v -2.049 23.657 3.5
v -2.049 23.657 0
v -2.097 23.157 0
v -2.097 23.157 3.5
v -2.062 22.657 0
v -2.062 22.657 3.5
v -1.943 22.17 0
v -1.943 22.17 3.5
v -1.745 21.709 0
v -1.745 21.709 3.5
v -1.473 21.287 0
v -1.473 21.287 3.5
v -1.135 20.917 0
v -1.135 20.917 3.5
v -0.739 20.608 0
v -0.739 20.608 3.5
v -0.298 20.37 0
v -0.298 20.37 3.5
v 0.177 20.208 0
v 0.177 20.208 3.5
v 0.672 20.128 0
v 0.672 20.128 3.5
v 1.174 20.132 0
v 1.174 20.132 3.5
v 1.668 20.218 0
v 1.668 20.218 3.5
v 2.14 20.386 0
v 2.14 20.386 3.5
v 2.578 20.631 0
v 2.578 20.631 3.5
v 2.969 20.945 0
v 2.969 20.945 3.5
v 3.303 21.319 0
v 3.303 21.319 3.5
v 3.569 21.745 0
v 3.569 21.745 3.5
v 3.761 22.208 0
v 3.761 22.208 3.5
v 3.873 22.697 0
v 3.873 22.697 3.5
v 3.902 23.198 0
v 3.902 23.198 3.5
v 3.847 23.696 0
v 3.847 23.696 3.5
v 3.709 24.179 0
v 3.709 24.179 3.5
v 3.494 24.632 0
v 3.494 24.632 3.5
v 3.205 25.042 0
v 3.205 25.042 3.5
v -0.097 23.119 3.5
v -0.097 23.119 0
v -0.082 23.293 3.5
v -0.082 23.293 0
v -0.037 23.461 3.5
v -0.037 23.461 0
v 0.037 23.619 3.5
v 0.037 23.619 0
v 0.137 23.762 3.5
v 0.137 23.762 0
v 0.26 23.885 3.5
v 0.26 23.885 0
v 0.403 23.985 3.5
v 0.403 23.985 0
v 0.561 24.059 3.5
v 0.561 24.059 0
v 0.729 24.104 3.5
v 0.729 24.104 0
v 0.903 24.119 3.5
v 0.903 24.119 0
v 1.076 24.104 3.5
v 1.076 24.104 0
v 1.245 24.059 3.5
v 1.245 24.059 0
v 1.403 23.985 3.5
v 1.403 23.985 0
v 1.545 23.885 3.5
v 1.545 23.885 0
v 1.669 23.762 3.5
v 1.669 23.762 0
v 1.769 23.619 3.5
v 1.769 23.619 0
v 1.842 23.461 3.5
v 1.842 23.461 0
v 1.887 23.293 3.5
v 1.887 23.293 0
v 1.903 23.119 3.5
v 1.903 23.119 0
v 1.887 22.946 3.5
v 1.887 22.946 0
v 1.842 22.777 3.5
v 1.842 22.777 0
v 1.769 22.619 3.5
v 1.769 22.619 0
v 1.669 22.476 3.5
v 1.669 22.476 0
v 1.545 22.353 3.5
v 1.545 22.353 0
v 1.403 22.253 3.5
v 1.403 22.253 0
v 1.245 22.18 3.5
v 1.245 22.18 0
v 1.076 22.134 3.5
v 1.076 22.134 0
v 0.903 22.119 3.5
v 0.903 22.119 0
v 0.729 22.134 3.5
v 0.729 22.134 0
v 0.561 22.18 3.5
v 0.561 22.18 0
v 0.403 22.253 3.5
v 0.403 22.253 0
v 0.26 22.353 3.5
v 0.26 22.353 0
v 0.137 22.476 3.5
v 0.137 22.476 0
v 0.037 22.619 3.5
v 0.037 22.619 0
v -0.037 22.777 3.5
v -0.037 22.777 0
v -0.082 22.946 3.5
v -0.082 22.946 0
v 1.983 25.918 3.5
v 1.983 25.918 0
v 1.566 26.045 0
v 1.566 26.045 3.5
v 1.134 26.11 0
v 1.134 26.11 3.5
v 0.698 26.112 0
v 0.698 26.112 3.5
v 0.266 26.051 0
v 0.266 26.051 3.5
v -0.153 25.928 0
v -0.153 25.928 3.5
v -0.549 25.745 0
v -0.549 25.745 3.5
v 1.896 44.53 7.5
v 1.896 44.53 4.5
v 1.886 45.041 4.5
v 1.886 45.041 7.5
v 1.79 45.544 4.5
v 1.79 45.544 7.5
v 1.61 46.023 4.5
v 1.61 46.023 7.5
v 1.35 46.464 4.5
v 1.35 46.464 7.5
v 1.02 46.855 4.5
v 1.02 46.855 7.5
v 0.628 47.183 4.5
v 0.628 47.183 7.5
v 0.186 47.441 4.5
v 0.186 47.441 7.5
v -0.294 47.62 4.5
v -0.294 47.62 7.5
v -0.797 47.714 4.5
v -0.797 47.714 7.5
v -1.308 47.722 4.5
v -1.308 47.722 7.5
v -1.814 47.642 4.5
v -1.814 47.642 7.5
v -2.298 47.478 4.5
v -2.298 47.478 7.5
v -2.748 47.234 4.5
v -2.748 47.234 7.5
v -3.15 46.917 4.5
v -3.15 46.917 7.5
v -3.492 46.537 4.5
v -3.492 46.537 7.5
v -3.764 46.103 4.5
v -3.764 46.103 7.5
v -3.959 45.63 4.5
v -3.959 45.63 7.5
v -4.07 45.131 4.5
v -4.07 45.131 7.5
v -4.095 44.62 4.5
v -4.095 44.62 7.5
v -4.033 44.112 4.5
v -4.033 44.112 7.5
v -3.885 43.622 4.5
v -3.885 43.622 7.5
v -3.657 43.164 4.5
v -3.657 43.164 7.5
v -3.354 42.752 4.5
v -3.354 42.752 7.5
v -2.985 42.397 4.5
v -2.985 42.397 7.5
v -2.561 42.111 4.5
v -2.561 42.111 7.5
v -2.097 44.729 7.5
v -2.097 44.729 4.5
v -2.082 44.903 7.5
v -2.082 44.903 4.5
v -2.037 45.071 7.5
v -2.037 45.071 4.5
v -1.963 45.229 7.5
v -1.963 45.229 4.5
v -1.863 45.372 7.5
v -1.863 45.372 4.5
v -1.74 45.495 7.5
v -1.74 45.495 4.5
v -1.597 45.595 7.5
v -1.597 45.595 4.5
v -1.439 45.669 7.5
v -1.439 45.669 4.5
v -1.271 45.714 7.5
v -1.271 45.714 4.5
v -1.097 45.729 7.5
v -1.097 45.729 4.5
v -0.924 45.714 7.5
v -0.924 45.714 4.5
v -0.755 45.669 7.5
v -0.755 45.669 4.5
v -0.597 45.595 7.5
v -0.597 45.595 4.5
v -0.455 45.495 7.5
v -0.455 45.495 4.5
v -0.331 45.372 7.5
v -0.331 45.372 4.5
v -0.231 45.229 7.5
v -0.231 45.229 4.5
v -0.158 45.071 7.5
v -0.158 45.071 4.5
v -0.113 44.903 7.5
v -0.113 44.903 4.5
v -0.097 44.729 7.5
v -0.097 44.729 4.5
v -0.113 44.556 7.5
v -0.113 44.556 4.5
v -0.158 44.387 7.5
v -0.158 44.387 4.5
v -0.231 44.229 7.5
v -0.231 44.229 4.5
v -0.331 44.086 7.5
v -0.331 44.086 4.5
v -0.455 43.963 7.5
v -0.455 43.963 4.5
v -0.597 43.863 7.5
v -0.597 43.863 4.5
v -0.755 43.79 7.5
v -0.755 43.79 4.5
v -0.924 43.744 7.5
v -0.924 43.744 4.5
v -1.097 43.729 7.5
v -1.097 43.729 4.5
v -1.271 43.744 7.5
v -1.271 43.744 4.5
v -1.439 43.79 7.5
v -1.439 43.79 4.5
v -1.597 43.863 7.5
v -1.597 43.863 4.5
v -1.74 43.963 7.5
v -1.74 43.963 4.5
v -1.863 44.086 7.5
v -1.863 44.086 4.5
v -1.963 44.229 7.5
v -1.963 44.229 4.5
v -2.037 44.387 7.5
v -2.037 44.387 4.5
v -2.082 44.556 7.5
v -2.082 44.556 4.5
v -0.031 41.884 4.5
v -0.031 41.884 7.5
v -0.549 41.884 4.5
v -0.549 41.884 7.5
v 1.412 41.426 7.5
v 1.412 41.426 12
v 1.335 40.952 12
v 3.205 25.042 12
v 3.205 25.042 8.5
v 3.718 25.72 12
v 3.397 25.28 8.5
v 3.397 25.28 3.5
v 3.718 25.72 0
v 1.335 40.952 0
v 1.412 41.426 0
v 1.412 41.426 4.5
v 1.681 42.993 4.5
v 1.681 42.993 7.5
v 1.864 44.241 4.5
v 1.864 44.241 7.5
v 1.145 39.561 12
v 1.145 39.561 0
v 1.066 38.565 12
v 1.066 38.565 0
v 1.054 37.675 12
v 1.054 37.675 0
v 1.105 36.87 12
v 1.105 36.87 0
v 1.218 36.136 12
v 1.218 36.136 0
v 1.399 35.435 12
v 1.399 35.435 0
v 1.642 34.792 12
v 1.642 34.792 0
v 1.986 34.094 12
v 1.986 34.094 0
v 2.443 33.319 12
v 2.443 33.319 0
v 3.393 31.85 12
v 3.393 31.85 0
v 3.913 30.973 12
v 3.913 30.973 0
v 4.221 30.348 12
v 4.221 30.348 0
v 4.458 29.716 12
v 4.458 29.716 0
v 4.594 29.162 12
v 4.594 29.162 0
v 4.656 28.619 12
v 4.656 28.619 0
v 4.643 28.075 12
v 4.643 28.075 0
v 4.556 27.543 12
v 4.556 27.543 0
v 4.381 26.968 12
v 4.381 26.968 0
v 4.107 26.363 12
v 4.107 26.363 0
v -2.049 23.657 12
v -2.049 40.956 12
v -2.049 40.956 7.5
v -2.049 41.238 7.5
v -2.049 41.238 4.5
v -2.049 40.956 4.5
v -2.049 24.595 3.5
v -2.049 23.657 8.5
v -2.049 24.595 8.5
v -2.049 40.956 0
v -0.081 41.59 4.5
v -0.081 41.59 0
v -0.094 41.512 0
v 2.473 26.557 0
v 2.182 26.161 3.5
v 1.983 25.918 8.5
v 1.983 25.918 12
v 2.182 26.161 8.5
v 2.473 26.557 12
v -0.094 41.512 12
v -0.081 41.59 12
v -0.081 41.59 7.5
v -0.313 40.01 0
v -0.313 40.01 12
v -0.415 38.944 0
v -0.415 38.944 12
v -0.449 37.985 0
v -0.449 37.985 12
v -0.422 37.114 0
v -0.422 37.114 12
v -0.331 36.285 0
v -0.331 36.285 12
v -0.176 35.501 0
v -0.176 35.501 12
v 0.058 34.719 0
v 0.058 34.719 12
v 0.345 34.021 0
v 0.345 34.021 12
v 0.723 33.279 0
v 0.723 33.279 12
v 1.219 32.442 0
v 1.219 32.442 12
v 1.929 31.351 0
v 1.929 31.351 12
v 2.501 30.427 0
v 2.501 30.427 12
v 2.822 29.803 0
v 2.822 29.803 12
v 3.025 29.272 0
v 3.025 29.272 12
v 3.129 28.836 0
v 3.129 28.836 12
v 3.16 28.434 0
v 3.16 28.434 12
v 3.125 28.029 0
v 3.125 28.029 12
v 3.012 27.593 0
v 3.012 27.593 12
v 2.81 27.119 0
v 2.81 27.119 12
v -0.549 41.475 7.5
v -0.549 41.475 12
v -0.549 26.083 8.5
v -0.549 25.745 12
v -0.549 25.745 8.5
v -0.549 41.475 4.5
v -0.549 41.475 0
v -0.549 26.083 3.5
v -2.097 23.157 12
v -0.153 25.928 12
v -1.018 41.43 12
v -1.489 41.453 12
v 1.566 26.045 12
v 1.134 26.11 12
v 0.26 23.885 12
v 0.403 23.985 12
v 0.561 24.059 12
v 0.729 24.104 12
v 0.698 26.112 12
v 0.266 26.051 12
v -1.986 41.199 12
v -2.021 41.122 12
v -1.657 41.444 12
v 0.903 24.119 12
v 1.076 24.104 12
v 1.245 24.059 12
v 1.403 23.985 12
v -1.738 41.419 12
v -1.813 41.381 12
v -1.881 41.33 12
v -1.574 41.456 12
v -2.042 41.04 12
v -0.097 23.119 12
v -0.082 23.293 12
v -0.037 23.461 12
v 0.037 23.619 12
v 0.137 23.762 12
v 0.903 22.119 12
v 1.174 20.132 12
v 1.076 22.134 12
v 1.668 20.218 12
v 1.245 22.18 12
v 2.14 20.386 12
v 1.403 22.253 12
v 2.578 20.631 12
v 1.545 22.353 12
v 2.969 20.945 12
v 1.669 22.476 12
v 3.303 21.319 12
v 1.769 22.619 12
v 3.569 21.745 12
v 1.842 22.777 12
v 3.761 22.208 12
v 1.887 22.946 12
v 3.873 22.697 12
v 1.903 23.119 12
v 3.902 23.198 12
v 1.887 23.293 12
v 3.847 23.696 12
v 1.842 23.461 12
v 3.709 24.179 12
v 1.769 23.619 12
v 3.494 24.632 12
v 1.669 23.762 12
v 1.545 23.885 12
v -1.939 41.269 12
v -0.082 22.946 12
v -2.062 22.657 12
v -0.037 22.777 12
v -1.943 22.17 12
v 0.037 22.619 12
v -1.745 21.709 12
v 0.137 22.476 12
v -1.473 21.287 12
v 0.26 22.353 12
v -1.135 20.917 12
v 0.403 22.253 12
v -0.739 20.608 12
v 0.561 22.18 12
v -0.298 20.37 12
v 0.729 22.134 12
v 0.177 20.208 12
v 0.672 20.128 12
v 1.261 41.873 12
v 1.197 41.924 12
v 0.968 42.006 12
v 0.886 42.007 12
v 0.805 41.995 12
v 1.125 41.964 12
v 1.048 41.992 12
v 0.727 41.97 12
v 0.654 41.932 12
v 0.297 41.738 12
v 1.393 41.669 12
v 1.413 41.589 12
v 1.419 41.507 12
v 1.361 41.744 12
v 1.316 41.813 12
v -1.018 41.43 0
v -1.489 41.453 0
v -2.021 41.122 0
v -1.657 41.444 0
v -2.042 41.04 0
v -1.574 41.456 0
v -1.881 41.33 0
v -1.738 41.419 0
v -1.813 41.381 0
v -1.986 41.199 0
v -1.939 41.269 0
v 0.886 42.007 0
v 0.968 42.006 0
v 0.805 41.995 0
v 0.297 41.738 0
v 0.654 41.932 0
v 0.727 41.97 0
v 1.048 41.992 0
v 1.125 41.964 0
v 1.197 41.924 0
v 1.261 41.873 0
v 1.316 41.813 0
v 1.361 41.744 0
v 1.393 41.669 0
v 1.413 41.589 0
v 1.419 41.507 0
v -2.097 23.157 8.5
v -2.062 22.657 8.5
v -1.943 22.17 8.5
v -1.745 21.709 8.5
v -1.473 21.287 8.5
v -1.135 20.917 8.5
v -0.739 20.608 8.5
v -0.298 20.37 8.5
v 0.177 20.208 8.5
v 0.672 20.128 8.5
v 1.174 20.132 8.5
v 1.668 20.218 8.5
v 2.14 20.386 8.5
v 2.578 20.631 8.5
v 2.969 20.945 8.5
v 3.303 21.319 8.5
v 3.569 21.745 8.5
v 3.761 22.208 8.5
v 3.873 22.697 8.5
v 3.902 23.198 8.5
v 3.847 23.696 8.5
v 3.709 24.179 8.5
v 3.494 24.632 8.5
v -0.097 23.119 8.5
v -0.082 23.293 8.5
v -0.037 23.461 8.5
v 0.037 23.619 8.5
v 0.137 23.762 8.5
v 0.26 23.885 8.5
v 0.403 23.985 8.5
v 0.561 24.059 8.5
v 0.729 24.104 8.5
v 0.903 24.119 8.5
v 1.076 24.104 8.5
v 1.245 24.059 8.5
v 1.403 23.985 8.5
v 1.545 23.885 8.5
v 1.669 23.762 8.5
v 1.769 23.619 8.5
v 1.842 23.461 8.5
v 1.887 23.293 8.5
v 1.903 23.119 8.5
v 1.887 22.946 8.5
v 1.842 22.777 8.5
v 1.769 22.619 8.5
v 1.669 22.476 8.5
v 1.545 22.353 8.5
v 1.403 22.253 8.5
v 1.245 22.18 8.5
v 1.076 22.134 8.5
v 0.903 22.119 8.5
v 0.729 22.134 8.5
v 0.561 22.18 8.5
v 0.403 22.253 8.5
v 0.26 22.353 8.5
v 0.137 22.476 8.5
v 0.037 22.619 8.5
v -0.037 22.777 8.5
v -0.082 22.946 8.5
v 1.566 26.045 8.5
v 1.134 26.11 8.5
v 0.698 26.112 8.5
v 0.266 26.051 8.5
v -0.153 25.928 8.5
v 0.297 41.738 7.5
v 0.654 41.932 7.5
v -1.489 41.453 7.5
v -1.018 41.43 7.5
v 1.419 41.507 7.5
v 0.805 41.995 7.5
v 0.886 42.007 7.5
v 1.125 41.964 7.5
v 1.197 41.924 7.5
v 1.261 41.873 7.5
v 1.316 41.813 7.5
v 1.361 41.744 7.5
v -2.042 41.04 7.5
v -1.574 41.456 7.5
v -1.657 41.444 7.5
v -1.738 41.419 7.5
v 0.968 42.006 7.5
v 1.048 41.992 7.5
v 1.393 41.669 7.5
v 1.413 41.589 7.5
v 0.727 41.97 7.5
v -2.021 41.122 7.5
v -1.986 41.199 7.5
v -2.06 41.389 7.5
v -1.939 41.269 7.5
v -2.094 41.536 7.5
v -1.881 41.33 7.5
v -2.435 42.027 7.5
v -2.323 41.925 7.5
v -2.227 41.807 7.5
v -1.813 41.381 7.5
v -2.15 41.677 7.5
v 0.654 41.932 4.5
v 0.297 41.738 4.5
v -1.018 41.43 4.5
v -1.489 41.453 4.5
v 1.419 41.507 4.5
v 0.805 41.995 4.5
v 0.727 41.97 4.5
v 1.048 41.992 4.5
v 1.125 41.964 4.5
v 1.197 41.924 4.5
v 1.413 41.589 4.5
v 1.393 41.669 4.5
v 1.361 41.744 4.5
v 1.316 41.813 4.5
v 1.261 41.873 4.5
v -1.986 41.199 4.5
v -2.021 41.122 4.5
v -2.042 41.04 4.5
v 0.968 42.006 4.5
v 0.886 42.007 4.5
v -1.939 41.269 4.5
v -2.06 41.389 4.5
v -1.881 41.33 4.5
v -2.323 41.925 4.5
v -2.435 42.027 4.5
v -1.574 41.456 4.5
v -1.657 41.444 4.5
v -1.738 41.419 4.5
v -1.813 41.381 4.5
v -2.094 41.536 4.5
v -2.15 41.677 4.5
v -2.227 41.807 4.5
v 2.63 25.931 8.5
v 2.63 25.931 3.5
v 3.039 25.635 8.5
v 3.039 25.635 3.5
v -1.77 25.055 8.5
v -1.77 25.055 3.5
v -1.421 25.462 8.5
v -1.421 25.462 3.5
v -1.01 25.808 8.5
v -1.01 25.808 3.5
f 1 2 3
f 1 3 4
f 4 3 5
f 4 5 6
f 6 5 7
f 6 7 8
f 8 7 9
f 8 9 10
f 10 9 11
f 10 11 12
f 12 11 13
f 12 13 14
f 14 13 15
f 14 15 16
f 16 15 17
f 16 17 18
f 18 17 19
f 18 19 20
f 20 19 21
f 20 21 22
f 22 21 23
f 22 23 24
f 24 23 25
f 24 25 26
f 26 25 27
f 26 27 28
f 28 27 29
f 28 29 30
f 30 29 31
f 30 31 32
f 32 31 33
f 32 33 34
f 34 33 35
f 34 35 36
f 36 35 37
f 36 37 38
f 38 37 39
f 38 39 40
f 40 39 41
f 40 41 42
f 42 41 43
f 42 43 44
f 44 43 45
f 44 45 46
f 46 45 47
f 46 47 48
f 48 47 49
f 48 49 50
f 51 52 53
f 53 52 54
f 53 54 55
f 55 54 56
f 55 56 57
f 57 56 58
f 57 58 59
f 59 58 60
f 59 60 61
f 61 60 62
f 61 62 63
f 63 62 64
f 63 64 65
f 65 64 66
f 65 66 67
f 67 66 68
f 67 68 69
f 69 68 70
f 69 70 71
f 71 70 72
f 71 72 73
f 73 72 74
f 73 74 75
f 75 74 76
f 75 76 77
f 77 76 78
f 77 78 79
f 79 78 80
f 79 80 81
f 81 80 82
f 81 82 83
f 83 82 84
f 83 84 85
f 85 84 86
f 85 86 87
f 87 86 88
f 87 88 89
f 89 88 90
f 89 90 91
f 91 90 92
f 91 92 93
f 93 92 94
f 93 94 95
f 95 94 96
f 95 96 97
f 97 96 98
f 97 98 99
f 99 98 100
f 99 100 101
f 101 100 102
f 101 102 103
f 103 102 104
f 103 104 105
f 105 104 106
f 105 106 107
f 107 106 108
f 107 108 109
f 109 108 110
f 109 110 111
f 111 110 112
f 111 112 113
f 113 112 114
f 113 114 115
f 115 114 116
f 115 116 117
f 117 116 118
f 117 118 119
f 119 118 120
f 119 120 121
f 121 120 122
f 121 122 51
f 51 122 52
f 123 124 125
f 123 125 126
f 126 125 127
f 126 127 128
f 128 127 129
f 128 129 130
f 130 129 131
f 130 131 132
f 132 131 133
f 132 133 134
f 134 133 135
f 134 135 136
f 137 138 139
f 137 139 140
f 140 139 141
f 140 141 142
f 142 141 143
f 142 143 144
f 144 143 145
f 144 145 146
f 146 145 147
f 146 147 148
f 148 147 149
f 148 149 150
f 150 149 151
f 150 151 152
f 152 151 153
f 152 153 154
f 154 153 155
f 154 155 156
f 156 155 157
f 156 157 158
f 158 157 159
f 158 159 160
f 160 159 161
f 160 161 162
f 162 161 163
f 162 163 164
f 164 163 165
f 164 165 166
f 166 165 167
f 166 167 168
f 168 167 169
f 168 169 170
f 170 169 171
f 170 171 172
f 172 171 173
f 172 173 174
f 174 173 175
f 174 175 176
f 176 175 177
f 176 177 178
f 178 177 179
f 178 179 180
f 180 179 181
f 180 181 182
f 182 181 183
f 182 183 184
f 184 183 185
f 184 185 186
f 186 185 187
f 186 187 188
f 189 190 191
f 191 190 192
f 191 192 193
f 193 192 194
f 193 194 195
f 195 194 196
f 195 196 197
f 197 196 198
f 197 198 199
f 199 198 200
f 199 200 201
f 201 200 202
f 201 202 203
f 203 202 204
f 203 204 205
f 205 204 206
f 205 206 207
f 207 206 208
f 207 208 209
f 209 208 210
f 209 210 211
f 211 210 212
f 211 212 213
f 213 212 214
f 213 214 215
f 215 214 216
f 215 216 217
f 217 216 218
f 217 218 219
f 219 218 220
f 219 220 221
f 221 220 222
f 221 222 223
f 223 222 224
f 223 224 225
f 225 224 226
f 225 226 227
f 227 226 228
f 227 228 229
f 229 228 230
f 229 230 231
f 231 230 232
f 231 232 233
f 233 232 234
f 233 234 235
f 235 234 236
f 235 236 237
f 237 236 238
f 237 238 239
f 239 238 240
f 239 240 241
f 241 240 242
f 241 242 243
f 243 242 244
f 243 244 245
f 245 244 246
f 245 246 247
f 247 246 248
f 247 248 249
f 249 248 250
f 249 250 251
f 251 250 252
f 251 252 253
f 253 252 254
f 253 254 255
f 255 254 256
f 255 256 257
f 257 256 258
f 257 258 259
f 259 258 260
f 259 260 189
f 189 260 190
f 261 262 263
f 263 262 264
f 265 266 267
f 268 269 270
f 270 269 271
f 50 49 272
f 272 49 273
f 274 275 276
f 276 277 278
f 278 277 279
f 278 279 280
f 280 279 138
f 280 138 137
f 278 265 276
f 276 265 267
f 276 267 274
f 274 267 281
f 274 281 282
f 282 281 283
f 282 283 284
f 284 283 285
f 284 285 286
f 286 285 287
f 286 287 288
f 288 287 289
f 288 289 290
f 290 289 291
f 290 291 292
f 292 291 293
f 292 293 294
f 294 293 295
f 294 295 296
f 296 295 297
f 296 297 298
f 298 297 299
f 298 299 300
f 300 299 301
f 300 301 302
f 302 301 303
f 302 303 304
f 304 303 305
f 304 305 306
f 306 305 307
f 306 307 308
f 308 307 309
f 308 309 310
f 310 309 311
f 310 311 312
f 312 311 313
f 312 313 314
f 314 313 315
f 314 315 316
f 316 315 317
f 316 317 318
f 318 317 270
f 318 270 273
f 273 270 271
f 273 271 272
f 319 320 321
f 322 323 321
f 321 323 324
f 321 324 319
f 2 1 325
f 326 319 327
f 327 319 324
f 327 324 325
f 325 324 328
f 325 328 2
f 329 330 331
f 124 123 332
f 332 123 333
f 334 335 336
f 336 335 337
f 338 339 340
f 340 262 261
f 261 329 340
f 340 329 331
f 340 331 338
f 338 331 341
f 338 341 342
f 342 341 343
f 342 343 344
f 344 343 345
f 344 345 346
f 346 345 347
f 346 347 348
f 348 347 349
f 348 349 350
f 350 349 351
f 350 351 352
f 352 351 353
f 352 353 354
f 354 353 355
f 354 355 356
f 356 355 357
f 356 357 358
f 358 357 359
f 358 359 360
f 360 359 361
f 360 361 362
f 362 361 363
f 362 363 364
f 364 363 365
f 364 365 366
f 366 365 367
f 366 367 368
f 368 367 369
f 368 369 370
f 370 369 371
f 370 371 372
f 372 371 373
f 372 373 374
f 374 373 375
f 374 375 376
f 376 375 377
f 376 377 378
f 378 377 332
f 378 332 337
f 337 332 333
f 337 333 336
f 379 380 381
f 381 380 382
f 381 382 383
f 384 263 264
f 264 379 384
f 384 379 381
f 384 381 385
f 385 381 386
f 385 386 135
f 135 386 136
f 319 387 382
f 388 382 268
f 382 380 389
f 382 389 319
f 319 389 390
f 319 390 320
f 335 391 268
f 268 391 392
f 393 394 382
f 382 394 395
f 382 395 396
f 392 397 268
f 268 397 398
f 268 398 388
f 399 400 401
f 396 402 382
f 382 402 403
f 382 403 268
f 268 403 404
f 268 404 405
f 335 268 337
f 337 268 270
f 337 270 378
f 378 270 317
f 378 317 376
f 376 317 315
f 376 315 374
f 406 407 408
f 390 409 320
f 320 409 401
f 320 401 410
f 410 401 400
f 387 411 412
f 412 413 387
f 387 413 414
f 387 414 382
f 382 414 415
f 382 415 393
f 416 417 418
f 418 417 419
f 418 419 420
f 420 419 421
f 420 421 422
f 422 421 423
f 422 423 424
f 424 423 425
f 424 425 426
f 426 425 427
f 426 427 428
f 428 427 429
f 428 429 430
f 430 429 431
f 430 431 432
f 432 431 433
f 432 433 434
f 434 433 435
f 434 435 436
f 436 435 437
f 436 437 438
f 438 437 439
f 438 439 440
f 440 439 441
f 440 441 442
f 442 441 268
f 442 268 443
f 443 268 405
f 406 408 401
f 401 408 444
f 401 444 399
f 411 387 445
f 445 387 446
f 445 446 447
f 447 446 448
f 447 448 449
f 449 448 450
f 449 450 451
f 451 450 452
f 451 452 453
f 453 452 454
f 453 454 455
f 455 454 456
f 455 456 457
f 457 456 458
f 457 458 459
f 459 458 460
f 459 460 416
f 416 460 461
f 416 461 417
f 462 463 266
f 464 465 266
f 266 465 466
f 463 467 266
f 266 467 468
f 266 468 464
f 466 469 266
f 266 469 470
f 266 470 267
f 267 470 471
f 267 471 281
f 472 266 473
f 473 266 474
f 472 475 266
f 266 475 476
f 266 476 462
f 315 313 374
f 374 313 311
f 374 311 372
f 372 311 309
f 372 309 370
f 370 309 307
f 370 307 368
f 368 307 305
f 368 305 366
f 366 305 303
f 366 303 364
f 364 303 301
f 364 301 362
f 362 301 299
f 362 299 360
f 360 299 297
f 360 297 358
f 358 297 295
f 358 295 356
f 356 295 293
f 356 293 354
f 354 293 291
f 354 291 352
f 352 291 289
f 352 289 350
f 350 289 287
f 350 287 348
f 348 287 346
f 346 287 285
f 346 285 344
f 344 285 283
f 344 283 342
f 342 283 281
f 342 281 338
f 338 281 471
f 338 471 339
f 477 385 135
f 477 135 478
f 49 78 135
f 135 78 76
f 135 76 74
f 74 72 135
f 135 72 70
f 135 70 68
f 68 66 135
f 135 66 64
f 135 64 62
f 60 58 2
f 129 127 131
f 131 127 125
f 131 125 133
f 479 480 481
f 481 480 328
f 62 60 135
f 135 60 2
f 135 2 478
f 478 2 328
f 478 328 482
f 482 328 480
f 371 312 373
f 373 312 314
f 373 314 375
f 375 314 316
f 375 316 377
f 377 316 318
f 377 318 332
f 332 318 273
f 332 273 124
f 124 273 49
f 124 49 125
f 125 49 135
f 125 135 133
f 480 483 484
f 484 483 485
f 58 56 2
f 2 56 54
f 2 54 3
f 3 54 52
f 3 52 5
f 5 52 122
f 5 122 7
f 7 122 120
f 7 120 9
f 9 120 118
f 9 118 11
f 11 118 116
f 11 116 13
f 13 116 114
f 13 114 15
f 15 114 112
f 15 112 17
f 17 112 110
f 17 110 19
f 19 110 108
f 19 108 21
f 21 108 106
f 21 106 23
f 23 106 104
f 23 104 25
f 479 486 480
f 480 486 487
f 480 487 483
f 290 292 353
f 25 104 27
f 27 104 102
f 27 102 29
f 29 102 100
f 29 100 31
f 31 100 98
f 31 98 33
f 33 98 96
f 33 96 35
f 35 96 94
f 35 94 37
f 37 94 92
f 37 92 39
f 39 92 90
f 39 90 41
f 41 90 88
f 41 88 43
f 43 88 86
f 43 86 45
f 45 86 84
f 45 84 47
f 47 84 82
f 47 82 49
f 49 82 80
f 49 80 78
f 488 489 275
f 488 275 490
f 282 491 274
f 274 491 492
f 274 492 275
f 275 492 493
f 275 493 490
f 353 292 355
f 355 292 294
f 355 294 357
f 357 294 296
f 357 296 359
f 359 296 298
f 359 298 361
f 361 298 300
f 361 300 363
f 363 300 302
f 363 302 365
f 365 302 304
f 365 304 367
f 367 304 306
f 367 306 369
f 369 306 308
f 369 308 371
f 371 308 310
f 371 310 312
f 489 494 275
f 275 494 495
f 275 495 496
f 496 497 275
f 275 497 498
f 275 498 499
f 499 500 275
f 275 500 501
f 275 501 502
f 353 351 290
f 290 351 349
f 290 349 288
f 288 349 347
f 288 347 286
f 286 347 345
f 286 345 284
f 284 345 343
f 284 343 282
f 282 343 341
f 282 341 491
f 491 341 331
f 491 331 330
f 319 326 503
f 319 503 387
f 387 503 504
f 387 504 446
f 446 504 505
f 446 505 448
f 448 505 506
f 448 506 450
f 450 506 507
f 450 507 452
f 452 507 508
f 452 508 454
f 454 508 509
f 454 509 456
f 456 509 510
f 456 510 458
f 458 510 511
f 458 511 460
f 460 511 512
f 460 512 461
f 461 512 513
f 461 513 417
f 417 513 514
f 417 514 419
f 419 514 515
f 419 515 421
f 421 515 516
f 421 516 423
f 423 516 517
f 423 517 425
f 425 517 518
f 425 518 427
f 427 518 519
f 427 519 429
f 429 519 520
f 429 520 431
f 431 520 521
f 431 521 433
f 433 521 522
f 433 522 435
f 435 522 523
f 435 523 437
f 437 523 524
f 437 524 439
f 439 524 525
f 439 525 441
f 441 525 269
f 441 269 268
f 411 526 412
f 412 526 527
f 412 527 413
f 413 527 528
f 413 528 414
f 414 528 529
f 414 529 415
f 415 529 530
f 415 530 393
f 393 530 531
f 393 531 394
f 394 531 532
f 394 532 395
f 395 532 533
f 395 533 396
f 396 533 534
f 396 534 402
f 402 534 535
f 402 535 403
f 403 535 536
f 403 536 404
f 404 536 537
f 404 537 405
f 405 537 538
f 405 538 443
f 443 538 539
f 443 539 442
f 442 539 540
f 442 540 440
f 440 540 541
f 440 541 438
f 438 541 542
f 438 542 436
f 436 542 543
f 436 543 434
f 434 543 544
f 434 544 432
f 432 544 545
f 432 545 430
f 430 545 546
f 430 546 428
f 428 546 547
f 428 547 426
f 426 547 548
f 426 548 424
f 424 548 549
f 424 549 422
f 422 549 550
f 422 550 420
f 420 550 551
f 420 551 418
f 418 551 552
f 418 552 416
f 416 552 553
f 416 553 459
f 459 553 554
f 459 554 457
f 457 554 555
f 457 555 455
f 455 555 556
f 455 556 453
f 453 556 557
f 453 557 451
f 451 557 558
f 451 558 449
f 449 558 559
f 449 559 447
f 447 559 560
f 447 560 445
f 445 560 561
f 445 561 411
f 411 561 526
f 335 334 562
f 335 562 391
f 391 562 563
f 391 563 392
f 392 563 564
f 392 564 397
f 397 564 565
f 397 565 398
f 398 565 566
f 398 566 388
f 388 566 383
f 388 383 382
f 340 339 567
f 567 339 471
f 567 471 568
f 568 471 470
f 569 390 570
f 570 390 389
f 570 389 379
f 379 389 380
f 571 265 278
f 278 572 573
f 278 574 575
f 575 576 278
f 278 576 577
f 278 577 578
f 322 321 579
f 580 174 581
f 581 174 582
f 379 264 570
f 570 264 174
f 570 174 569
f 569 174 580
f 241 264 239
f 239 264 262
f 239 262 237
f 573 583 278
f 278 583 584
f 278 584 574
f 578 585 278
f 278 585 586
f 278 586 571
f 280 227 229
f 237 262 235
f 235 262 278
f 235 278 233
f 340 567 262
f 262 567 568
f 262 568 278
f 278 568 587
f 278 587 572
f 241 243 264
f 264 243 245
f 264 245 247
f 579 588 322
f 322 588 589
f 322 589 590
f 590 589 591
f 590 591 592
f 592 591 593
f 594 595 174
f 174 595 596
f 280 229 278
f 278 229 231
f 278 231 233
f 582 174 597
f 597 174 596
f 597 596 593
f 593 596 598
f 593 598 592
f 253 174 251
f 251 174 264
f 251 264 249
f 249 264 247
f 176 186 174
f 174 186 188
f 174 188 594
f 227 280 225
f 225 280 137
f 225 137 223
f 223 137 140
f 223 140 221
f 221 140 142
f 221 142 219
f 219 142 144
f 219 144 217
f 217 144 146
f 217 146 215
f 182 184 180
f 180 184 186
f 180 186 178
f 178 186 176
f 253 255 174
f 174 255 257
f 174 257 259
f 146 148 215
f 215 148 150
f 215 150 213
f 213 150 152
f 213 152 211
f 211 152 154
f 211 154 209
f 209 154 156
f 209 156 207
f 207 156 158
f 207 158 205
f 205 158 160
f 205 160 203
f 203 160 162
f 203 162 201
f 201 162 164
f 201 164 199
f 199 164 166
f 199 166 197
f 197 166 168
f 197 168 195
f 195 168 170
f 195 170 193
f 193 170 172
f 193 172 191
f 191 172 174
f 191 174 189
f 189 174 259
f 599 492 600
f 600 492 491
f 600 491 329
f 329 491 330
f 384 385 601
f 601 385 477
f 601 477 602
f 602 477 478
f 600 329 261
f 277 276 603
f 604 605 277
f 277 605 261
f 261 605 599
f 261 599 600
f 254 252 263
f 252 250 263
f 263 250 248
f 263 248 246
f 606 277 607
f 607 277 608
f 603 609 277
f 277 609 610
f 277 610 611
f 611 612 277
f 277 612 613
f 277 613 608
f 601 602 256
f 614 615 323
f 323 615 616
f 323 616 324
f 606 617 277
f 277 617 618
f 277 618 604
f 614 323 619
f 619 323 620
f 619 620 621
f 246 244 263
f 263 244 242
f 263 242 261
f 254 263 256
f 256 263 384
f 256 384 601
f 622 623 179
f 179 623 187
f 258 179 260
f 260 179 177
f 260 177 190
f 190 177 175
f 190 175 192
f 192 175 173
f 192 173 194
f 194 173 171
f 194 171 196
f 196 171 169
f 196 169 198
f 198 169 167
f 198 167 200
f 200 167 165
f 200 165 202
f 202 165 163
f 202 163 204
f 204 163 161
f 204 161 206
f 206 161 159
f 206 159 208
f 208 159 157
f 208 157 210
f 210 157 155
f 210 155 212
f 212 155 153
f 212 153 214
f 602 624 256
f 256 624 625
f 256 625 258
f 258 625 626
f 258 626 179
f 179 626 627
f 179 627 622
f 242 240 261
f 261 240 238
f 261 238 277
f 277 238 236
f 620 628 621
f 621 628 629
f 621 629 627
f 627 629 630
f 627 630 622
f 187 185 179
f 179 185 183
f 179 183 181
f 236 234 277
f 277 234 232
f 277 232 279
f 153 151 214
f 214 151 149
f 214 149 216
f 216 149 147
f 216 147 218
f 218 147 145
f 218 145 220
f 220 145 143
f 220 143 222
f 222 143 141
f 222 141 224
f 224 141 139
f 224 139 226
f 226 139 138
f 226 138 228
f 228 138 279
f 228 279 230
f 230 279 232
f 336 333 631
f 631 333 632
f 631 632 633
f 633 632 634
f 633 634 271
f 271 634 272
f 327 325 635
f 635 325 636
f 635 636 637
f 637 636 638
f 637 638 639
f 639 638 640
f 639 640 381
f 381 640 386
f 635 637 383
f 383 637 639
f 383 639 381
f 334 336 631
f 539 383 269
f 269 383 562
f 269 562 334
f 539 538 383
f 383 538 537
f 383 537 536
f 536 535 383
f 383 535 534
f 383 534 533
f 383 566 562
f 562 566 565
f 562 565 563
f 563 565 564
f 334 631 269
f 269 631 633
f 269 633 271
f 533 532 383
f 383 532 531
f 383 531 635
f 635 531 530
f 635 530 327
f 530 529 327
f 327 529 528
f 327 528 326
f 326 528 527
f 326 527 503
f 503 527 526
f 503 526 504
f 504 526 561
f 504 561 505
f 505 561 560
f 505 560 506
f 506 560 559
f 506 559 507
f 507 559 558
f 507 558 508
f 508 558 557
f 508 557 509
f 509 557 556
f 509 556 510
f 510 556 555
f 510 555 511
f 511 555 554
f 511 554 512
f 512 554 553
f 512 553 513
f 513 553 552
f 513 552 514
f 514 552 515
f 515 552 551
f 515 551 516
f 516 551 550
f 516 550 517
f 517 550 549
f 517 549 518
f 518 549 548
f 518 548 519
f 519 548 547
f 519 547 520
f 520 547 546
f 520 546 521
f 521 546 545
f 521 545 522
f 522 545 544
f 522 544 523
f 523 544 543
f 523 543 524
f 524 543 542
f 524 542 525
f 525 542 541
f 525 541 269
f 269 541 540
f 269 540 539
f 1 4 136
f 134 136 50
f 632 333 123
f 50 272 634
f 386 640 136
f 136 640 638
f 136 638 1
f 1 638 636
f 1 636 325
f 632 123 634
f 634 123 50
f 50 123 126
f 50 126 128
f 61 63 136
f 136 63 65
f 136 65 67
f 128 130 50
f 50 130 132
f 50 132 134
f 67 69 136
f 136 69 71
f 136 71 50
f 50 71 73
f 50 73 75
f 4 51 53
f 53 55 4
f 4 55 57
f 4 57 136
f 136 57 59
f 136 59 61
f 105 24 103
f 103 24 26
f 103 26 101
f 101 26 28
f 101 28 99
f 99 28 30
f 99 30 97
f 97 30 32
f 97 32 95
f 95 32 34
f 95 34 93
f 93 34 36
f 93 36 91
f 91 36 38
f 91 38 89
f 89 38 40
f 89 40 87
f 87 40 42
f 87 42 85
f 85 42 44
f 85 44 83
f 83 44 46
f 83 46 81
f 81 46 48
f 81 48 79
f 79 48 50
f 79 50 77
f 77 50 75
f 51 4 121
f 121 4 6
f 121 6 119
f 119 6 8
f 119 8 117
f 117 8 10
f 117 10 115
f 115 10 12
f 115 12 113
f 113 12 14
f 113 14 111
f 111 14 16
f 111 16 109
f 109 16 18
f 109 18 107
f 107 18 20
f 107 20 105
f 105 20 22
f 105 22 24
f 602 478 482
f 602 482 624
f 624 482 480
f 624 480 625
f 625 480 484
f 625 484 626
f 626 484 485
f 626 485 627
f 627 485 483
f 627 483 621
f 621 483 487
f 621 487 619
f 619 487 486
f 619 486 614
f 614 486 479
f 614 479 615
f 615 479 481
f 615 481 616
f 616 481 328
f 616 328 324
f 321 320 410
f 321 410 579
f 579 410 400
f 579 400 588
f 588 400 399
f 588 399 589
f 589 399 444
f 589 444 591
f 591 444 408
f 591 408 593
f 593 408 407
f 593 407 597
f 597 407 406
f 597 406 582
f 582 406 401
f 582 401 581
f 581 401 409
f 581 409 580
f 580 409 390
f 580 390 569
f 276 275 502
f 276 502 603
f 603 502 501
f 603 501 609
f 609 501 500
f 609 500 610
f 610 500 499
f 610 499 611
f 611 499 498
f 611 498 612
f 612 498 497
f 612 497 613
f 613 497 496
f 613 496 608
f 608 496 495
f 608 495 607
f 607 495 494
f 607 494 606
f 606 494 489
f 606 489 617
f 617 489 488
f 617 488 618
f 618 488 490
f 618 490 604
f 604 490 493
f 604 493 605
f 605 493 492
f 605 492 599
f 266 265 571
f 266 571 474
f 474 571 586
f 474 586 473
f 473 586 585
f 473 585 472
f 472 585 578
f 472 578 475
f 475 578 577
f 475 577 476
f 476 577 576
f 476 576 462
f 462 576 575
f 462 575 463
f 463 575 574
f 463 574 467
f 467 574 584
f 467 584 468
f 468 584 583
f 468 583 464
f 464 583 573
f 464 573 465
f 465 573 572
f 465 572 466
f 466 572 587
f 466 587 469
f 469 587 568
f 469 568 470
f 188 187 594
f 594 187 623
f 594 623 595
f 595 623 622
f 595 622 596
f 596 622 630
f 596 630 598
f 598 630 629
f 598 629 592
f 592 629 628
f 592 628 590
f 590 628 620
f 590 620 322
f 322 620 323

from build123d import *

# Parameters (mm, degrees)
SKETCH1_R               = 1
BOSS_EXTRUDE1_DEPTH     = 12
SKETCH2_R               = 3.3
CUT_EXTRUDE1_DEPTH      = 4.5
SKETCH3_R               = 3.3
CUT_EXTRUDE2_DEPTH      = 2.5
CUT_EXTRUDE2_DEPTH_BACK = 2.5
FILLET1_R               = 0.5
FILLET2_R               = 1


with BuildPart() as part:
    # Sketch1 → Boss-Extrude1 (new body)
    with BuildSketch(Plane.XY):
        with BuildLine():
            Line((-2.048815827, 41.884151299), (-2.048815827, 23.656682303))
            ThreePointArc((-2.048815827, 23.656682303), (1.66754925, 20.218418642), (3.205412143, 25.042110601))
            add(Edge.make_bspline(
                [(1.896008332, 44.529660516), (1.616069448, 41.758878479), (-0.936917255, 33.955197005), (6.844694938, 29.417505011), (3.205412143, 25.042110601)],
                knots=[0, 0, 0, 0, 0.461184527, 1, 1, 1, 1], degree=3))
            ThreePointArc((1.896008332, 44.529660516), (-2.768270934, 47.220856283), (-2.048815827, 41.884151299))
        make_face()
        with Locations((-1.097343641, 44.729270045)):
            Circle(SKETCH1_R, mode=Mode.SUBTRACT)
        with Locations((0.902656359, 23.119270045)):
            Circle(SKETCH1_R, mode=Mode.SUBTRACT)
        with BuildLine():
            Line((-0.031319306, 41.884151299), (-0.548815827, 41.884151299))
            Line((-0.548815827, 41.884151299), (-0.548815827, 25.744765902))
            ThreePointArc((-0.548815827, 25.744765902), (0.697826573, 26.112269337), (1.982912704, 25.918028026))
            add(Edge.make_bspline(
                [(-0.031319306, 41.884151299), (-0.050798368, 41.769911378), (-0.110231132, 41.41757497), (-0.243210983, 40.585051968), (-0.402027872, 39.353261852), (-0.479087992, 37.828213551), (-0.375856847, 36.275358456), (0.009969142, 34.681069755), (0.941317901, 32.770668216), (2.035404053, 31.246938586), (2.80471042, 29.909471533), (3.128629571, 29.030940173), (3.19641087, 28.267404516), (3.032335606, 27.550309668), (2.666289508, 26.829120101), (2.334869511, 26.350170873), (2.106769915, 26.067173099), (2.026097439, 25.969974031), (1.996829195, 25.934759382), (1.982912704, 25.918028026)],
                knots=[0.149200089, 0.149200089, 0.149200089, 0.149200089, 0.165683382, 0.19960026, 0.265533433, 0.331466606, 0.397399778, 0.463332951, 0.529266124, 0.661132469, 0.727065642, 0.792998815, 0.858931987, 0.92486516, 0.957831746, 0.990798333, 0.999039979, 1.001358499, 1.00341891, 1.00341891, 1.00341891, 1.00341891], degree=3))
        make_face(mode=Mode.SUBTRACT)
    extrude(amount=BOSS_EXTRUDE1_DEPTH)

    # Sketch2 → Cut-Extrude1 (cut)
    with BuildSketch(Plane.XY.offset(12)):
        with Locations((-1.097343641, 44.729270045)):
            Circle(SKETCH2_R)
    cut_extrude1 = extrude(amount=-CUT_EXTRUDE1_DEPTH, mode=Mode.SUBTRACT)

    # Mirror1: Cut-Extrude1 across plane
    add(cut_extrude1.mirror(Plane.XY.offset(6)), mode=Mode.SUBTRACT)

    # Sketch3 → Cut-Extrude2 (cut, two sides)
    with BuildSketch(Plane.XY.offset(6)) as cut_extrude2_sk:
        with Locations((0.902656359, 23.119270045)):
            Circle(SKETCH3_R)
    extrude(amount=CUT_EXTRUDE2_DEPTH, mode=Mode.SUBTRACT)
    extrude(cut_extrude2_sk.sketch, amount=-CUT_EXTRUDE2_DEPTH_BACK, mode=Mode.SUBTRACT)

    # Fillet1
    fillet1_edges = [part.edges().sort_by_distance(p)[0] for p in [
        (1.670824854, 42.932817101, 9.75),
        (-2.048815827, 41.569412346, 9.75),
        (1.670824854, 42.932817101, 2.25),
        (-2.048815827, 41.569412346, 2.25),
    ]]
    fillet(fillet1_edges, radius=FILLET1_R)

    # Fillet2
    fillet2_edges = [part.edges().sort_by_distance(p)[0] for p in [
        (-2.048815827, 41.884151299, 6),
    ]]
    fillet(fillet2_edges, radius=FILLET2_R)


solid = part.part
